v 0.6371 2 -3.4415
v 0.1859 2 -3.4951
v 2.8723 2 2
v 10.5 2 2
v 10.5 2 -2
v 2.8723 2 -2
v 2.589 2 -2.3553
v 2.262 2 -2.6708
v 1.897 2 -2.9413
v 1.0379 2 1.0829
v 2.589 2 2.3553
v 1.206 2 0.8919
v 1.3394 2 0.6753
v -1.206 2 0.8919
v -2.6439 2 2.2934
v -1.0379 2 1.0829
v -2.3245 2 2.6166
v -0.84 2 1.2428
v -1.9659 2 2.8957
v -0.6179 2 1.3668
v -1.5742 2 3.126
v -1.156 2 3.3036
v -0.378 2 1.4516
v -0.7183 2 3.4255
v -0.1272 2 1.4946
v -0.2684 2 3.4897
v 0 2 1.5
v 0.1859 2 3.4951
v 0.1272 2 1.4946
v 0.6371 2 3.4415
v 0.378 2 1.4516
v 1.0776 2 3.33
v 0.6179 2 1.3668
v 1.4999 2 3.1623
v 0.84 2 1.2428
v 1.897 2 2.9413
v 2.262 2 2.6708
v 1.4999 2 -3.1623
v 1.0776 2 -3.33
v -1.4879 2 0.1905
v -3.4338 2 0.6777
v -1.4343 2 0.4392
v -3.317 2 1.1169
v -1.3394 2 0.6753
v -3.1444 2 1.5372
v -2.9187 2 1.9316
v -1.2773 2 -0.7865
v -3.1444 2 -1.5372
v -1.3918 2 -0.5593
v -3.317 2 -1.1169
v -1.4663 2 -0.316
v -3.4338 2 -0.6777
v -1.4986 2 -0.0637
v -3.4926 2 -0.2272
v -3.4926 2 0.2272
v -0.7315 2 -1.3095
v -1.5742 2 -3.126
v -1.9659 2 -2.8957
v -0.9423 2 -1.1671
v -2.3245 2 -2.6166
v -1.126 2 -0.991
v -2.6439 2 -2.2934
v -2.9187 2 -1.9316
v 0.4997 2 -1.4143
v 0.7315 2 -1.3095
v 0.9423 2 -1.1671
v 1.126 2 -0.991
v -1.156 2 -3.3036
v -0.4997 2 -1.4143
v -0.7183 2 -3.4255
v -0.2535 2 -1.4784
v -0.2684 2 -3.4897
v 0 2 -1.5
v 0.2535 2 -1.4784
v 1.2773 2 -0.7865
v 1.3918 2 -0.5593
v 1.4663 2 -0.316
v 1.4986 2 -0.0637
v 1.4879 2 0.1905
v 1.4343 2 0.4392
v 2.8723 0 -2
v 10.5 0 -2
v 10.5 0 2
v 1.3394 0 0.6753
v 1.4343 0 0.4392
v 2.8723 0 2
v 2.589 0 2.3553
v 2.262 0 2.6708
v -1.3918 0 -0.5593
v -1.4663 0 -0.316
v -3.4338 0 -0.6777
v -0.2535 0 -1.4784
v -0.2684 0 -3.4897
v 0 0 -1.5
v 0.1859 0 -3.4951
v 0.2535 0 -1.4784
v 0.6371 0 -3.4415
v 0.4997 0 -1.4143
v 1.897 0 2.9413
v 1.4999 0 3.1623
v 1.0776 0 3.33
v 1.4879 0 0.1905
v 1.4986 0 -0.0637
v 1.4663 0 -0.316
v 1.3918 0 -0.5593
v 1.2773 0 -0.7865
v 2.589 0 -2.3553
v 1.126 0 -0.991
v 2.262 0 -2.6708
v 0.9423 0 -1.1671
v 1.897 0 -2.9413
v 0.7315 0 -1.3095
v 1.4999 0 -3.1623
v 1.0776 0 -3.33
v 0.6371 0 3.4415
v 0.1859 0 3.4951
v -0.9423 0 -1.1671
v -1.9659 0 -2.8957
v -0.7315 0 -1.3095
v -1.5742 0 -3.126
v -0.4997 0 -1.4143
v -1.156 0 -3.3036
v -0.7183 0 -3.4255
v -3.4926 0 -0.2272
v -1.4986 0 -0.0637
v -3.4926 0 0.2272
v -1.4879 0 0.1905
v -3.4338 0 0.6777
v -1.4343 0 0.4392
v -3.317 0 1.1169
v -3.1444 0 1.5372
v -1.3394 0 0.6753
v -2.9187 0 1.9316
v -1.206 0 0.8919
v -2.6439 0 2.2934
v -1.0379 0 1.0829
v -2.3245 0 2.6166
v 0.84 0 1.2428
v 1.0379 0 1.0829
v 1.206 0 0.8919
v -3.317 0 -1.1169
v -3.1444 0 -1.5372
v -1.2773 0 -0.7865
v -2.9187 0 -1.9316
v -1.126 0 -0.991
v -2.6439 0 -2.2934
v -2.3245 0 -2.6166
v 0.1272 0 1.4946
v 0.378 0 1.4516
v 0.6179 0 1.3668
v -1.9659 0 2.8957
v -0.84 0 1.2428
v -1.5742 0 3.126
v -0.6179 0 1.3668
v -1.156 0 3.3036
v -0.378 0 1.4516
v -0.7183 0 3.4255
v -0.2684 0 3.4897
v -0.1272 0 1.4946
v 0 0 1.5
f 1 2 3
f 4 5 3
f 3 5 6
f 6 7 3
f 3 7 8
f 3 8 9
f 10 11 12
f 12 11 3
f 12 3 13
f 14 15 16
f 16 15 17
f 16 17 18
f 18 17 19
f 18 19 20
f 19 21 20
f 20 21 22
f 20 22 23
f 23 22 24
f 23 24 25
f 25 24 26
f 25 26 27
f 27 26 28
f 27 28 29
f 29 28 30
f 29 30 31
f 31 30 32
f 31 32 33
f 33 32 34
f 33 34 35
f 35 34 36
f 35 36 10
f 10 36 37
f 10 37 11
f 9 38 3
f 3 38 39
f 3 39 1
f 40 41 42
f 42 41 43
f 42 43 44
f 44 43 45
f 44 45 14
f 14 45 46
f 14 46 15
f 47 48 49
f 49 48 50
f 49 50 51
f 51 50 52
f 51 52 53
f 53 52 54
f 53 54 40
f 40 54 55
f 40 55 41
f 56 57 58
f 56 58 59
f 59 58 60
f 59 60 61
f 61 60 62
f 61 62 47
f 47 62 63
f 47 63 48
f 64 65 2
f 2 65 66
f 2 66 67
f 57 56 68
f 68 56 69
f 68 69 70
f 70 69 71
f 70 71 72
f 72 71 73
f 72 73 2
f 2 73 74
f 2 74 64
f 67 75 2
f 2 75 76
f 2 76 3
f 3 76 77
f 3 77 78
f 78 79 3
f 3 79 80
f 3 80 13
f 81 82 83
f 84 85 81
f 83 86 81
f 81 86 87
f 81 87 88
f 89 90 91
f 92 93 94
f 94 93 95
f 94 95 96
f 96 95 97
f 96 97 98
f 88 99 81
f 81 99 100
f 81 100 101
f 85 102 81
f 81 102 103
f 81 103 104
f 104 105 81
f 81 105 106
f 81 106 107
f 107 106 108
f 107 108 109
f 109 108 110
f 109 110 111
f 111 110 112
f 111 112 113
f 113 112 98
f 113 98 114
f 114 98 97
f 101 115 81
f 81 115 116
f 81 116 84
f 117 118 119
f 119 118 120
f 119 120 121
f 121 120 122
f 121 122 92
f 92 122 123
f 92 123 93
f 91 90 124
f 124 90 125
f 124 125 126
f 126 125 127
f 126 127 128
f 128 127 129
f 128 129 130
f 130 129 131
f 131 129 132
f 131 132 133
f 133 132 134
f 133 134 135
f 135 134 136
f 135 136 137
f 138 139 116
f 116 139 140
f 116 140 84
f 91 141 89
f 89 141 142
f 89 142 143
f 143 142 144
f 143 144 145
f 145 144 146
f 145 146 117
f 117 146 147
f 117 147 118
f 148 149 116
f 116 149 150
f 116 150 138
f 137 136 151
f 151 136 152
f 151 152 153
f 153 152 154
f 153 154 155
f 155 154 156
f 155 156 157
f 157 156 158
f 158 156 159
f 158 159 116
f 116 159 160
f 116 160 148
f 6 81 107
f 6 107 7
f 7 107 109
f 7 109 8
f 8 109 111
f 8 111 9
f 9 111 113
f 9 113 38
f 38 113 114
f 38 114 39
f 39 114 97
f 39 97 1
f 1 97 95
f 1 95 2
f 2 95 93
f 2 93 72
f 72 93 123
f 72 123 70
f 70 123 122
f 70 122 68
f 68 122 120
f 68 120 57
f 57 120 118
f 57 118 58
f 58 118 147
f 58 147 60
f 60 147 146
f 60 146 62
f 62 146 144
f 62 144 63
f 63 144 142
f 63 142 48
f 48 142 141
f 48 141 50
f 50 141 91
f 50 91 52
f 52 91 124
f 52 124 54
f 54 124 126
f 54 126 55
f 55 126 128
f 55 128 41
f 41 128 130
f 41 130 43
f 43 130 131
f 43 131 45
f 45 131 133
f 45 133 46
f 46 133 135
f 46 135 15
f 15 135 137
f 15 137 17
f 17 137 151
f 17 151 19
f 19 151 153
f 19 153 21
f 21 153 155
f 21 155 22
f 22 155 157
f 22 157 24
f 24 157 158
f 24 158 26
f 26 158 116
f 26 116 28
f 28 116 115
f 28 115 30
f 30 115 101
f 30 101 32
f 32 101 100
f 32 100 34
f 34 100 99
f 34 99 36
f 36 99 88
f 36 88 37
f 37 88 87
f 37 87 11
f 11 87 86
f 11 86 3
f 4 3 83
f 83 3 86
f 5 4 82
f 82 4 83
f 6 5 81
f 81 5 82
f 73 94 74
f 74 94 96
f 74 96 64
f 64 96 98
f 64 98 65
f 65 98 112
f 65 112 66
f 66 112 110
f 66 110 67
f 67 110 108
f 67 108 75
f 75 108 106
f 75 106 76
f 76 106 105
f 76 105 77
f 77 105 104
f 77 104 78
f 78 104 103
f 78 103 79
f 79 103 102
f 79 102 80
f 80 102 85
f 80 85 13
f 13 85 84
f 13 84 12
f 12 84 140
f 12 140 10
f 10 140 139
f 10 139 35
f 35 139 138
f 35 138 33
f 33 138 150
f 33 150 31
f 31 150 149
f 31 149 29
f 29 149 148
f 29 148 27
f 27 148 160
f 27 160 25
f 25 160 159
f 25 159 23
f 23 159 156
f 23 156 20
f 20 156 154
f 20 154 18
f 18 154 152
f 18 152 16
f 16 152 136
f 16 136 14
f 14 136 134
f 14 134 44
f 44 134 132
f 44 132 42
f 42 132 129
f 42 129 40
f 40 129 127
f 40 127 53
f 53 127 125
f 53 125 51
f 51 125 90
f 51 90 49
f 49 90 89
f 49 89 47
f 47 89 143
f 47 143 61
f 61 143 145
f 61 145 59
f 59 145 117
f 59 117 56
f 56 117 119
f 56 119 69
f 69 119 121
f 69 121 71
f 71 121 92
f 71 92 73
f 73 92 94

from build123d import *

# Parameters (mm, degrees)
SZKIC1_R                    = 1.5
DODANIE_WYCI_GNI_CIE1_DEPTH = 2


with BuildPart() as part:
    # Szkic1 → Dodanie-wyciągnięcie1 (new body)
    with BuildSketch(Plane(origin=(0, 0, 0), x_dir=(1, 0, 0), z_dir=(0, 1, 0))):
        with BuildLine():
            Line((3.5, 2), (10.5, 2))
            Line((10.5, 2), (10.5, -2))
            Line((10.5, -2), (3.5, -2))
            Line((3.5, -2), (2.872281323, -2))
            ThreePointArc((2.872281323, -2), (-3.5, 0), (2.872281323, 2))
            Line((2.872281323, 2), (3.5, 2))
        make_face()
        with Locations(Location((0, 0, 0), (0, 0, 270))):
            Circle(SZKIC1_R, mode=Mode.SUBTRACT)
    extrude(amount=DODANIE_WYCI_GNI_CIE1_DEPTH)


solid = part.part
